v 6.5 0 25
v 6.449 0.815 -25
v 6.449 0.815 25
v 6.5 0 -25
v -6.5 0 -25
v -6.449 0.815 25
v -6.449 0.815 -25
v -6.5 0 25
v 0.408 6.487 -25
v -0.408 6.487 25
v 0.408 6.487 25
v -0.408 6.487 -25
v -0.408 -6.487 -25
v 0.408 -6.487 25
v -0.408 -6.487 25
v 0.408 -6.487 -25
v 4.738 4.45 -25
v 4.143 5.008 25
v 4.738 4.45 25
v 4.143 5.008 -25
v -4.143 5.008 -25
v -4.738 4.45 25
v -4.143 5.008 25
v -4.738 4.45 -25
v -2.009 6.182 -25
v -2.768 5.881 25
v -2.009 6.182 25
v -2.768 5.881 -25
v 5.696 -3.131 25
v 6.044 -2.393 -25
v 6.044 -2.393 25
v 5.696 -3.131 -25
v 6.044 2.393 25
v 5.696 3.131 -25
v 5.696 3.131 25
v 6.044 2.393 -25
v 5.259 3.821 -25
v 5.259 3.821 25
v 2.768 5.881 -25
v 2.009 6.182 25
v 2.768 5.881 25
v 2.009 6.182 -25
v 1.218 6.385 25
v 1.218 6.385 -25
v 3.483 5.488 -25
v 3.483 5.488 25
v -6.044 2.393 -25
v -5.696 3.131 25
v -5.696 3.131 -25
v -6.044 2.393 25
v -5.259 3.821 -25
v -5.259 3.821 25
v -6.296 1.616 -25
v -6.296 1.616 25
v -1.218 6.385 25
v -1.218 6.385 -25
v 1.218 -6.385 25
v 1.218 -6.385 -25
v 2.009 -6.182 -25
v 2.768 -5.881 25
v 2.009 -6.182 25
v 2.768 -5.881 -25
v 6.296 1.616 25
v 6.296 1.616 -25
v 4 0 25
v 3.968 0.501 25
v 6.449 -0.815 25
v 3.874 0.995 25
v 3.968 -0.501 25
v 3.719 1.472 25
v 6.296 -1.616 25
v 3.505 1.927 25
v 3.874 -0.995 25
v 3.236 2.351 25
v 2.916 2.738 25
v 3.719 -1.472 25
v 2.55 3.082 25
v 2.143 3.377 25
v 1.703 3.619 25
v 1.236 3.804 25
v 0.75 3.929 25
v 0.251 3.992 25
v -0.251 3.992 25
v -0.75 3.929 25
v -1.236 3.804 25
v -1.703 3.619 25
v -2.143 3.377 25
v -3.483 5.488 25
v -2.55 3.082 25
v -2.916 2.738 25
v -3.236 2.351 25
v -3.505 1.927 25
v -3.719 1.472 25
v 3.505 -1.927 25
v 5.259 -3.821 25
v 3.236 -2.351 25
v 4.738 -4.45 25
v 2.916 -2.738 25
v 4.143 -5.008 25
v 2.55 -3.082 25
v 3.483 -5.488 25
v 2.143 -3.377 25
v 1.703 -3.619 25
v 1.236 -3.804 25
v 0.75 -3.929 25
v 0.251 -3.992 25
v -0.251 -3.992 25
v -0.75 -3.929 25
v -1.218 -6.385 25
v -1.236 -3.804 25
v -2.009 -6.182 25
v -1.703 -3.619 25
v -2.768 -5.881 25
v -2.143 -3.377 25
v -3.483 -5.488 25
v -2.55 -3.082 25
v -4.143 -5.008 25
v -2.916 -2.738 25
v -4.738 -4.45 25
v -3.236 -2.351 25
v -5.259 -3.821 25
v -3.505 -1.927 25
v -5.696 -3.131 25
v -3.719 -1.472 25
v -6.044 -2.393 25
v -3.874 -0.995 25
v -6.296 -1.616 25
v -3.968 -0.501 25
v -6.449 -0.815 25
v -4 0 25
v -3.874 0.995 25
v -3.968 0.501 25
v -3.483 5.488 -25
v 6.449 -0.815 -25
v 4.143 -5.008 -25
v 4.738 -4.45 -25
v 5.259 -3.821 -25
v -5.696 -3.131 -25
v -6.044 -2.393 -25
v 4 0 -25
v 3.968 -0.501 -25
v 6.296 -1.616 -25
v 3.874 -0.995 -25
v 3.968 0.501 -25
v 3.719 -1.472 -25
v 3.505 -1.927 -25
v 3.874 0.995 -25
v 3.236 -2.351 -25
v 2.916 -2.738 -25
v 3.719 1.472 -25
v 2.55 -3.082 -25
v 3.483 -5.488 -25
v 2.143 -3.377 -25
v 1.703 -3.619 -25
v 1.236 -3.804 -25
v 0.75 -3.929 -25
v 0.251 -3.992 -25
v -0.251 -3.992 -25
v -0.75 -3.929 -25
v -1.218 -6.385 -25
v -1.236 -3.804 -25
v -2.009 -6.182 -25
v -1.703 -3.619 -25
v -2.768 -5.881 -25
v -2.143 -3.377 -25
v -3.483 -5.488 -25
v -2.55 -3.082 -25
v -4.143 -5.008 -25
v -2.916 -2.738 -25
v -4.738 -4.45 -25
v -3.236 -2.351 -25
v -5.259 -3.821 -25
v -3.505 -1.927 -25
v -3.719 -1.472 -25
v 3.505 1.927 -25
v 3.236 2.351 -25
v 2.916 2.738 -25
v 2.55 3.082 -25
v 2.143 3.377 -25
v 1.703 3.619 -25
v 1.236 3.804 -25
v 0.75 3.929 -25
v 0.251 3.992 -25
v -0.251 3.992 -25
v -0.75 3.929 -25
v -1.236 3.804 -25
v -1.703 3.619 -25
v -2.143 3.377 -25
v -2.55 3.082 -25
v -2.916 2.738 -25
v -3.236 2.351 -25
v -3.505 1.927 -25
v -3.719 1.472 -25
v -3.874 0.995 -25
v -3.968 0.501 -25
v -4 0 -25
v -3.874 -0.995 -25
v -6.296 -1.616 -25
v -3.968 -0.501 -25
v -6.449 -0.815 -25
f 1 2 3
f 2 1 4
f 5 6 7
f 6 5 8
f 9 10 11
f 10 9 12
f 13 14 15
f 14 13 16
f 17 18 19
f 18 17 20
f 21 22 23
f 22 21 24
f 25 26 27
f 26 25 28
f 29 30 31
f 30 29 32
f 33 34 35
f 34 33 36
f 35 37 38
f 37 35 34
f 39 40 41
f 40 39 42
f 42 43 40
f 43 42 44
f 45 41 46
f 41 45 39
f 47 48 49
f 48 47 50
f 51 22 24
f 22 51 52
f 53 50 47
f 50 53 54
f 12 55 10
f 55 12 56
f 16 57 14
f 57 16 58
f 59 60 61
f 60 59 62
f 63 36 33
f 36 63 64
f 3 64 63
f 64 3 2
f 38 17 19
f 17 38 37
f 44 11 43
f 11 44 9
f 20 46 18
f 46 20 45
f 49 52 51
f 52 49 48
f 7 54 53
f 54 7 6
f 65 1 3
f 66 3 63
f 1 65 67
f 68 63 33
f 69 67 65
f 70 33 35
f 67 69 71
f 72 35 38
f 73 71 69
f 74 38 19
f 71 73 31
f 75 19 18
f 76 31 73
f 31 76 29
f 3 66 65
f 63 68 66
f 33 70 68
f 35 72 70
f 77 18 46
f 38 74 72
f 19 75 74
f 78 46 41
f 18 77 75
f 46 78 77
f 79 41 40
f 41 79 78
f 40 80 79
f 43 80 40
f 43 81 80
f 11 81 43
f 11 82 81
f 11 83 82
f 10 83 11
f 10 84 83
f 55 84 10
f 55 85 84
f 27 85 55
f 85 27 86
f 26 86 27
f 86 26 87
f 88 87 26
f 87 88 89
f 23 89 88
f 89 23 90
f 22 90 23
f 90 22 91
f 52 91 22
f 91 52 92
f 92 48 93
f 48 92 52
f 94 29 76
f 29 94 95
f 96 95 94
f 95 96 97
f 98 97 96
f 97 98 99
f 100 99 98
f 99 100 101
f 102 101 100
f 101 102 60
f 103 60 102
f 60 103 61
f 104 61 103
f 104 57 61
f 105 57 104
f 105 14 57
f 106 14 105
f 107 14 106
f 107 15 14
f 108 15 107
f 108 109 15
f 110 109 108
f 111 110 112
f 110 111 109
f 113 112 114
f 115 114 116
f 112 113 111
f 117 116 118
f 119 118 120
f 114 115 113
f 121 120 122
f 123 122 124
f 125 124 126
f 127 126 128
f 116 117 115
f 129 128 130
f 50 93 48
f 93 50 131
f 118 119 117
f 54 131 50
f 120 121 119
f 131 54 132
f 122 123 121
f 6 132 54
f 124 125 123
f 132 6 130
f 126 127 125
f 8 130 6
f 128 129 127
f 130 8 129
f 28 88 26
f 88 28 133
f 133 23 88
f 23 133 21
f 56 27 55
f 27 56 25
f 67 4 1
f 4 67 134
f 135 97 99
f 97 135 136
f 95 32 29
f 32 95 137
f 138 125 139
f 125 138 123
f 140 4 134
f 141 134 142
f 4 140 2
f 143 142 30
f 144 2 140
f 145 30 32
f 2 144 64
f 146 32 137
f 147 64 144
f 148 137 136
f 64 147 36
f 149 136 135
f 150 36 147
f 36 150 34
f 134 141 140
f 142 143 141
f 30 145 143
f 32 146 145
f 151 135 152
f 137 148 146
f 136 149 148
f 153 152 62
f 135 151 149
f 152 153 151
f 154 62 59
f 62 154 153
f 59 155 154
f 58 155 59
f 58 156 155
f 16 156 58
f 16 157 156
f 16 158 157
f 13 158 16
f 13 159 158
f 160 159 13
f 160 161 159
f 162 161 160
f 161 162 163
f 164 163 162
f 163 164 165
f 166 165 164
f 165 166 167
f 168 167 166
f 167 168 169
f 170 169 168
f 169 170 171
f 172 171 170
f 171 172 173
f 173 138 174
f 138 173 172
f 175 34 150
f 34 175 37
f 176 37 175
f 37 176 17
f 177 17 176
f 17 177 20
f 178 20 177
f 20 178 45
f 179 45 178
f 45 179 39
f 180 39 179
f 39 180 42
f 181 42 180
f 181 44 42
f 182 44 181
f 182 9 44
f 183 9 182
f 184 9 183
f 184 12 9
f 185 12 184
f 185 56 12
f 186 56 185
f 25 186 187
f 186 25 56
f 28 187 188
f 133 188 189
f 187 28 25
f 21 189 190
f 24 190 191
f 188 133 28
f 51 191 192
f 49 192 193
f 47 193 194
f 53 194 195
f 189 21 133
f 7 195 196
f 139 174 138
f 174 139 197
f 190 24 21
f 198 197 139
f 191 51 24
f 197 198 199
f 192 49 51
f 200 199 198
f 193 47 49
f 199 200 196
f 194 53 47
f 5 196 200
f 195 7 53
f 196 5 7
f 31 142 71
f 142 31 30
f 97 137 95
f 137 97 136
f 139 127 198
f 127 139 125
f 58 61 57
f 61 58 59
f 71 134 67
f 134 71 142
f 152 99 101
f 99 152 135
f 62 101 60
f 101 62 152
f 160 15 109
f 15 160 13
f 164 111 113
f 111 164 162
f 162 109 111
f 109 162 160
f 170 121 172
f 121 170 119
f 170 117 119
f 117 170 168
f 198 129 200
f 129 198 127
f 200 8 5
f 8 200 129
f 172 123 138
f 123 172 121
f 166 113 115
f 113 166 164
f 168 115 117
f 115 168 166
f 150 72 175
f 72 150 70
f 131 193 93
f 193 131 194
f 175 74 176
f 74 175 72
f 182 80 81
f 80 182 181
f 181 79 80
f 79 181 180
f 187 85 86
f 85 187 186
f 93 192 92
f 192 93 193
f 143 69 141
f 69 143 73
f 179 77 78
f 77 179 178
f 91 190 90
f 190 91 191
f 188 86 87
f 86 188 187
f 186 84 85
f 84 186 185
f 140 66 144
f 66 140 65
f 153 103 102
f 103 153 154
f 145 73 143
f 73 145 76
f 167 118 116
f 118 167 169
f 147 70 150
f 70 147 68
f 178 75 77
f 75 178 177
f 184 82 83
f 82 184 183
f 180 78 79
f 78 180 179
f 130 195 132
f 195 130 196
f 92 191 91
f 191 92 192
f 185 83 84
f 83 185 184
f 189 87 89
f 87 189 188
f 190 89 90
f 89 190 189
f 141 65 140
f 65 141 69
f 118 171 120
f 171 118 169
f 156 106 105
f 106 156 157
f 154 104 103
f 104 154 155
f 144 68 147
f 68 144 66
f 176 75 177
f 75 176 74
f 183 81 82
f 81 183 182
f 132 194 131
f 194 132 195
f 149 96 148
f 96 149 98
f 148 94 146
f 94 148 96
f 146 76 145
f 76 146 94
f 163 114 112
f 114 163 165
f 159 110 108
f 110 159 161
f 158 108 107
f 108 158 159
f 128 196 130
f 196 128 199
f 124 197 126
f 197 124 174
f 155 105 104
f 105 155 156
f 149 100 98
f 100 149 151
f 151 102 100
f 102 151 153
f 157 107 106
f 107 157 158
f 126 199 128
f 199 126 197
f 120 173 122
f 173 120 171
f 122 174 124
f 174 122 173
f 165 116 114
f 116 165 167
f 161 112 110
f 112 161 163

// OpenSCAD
$fn = 50;


difference() {
	union() {
		translate(v = [0, 0, -25.0000000000]) {
			cylinder(h = 50, r = 6.5000000000);
		}
	}
	union() {
		translate(v = [0, 0, -100.0000000000]) {
			cylinder(h = 200, r = 4.0000000000);
		}
	}
}
